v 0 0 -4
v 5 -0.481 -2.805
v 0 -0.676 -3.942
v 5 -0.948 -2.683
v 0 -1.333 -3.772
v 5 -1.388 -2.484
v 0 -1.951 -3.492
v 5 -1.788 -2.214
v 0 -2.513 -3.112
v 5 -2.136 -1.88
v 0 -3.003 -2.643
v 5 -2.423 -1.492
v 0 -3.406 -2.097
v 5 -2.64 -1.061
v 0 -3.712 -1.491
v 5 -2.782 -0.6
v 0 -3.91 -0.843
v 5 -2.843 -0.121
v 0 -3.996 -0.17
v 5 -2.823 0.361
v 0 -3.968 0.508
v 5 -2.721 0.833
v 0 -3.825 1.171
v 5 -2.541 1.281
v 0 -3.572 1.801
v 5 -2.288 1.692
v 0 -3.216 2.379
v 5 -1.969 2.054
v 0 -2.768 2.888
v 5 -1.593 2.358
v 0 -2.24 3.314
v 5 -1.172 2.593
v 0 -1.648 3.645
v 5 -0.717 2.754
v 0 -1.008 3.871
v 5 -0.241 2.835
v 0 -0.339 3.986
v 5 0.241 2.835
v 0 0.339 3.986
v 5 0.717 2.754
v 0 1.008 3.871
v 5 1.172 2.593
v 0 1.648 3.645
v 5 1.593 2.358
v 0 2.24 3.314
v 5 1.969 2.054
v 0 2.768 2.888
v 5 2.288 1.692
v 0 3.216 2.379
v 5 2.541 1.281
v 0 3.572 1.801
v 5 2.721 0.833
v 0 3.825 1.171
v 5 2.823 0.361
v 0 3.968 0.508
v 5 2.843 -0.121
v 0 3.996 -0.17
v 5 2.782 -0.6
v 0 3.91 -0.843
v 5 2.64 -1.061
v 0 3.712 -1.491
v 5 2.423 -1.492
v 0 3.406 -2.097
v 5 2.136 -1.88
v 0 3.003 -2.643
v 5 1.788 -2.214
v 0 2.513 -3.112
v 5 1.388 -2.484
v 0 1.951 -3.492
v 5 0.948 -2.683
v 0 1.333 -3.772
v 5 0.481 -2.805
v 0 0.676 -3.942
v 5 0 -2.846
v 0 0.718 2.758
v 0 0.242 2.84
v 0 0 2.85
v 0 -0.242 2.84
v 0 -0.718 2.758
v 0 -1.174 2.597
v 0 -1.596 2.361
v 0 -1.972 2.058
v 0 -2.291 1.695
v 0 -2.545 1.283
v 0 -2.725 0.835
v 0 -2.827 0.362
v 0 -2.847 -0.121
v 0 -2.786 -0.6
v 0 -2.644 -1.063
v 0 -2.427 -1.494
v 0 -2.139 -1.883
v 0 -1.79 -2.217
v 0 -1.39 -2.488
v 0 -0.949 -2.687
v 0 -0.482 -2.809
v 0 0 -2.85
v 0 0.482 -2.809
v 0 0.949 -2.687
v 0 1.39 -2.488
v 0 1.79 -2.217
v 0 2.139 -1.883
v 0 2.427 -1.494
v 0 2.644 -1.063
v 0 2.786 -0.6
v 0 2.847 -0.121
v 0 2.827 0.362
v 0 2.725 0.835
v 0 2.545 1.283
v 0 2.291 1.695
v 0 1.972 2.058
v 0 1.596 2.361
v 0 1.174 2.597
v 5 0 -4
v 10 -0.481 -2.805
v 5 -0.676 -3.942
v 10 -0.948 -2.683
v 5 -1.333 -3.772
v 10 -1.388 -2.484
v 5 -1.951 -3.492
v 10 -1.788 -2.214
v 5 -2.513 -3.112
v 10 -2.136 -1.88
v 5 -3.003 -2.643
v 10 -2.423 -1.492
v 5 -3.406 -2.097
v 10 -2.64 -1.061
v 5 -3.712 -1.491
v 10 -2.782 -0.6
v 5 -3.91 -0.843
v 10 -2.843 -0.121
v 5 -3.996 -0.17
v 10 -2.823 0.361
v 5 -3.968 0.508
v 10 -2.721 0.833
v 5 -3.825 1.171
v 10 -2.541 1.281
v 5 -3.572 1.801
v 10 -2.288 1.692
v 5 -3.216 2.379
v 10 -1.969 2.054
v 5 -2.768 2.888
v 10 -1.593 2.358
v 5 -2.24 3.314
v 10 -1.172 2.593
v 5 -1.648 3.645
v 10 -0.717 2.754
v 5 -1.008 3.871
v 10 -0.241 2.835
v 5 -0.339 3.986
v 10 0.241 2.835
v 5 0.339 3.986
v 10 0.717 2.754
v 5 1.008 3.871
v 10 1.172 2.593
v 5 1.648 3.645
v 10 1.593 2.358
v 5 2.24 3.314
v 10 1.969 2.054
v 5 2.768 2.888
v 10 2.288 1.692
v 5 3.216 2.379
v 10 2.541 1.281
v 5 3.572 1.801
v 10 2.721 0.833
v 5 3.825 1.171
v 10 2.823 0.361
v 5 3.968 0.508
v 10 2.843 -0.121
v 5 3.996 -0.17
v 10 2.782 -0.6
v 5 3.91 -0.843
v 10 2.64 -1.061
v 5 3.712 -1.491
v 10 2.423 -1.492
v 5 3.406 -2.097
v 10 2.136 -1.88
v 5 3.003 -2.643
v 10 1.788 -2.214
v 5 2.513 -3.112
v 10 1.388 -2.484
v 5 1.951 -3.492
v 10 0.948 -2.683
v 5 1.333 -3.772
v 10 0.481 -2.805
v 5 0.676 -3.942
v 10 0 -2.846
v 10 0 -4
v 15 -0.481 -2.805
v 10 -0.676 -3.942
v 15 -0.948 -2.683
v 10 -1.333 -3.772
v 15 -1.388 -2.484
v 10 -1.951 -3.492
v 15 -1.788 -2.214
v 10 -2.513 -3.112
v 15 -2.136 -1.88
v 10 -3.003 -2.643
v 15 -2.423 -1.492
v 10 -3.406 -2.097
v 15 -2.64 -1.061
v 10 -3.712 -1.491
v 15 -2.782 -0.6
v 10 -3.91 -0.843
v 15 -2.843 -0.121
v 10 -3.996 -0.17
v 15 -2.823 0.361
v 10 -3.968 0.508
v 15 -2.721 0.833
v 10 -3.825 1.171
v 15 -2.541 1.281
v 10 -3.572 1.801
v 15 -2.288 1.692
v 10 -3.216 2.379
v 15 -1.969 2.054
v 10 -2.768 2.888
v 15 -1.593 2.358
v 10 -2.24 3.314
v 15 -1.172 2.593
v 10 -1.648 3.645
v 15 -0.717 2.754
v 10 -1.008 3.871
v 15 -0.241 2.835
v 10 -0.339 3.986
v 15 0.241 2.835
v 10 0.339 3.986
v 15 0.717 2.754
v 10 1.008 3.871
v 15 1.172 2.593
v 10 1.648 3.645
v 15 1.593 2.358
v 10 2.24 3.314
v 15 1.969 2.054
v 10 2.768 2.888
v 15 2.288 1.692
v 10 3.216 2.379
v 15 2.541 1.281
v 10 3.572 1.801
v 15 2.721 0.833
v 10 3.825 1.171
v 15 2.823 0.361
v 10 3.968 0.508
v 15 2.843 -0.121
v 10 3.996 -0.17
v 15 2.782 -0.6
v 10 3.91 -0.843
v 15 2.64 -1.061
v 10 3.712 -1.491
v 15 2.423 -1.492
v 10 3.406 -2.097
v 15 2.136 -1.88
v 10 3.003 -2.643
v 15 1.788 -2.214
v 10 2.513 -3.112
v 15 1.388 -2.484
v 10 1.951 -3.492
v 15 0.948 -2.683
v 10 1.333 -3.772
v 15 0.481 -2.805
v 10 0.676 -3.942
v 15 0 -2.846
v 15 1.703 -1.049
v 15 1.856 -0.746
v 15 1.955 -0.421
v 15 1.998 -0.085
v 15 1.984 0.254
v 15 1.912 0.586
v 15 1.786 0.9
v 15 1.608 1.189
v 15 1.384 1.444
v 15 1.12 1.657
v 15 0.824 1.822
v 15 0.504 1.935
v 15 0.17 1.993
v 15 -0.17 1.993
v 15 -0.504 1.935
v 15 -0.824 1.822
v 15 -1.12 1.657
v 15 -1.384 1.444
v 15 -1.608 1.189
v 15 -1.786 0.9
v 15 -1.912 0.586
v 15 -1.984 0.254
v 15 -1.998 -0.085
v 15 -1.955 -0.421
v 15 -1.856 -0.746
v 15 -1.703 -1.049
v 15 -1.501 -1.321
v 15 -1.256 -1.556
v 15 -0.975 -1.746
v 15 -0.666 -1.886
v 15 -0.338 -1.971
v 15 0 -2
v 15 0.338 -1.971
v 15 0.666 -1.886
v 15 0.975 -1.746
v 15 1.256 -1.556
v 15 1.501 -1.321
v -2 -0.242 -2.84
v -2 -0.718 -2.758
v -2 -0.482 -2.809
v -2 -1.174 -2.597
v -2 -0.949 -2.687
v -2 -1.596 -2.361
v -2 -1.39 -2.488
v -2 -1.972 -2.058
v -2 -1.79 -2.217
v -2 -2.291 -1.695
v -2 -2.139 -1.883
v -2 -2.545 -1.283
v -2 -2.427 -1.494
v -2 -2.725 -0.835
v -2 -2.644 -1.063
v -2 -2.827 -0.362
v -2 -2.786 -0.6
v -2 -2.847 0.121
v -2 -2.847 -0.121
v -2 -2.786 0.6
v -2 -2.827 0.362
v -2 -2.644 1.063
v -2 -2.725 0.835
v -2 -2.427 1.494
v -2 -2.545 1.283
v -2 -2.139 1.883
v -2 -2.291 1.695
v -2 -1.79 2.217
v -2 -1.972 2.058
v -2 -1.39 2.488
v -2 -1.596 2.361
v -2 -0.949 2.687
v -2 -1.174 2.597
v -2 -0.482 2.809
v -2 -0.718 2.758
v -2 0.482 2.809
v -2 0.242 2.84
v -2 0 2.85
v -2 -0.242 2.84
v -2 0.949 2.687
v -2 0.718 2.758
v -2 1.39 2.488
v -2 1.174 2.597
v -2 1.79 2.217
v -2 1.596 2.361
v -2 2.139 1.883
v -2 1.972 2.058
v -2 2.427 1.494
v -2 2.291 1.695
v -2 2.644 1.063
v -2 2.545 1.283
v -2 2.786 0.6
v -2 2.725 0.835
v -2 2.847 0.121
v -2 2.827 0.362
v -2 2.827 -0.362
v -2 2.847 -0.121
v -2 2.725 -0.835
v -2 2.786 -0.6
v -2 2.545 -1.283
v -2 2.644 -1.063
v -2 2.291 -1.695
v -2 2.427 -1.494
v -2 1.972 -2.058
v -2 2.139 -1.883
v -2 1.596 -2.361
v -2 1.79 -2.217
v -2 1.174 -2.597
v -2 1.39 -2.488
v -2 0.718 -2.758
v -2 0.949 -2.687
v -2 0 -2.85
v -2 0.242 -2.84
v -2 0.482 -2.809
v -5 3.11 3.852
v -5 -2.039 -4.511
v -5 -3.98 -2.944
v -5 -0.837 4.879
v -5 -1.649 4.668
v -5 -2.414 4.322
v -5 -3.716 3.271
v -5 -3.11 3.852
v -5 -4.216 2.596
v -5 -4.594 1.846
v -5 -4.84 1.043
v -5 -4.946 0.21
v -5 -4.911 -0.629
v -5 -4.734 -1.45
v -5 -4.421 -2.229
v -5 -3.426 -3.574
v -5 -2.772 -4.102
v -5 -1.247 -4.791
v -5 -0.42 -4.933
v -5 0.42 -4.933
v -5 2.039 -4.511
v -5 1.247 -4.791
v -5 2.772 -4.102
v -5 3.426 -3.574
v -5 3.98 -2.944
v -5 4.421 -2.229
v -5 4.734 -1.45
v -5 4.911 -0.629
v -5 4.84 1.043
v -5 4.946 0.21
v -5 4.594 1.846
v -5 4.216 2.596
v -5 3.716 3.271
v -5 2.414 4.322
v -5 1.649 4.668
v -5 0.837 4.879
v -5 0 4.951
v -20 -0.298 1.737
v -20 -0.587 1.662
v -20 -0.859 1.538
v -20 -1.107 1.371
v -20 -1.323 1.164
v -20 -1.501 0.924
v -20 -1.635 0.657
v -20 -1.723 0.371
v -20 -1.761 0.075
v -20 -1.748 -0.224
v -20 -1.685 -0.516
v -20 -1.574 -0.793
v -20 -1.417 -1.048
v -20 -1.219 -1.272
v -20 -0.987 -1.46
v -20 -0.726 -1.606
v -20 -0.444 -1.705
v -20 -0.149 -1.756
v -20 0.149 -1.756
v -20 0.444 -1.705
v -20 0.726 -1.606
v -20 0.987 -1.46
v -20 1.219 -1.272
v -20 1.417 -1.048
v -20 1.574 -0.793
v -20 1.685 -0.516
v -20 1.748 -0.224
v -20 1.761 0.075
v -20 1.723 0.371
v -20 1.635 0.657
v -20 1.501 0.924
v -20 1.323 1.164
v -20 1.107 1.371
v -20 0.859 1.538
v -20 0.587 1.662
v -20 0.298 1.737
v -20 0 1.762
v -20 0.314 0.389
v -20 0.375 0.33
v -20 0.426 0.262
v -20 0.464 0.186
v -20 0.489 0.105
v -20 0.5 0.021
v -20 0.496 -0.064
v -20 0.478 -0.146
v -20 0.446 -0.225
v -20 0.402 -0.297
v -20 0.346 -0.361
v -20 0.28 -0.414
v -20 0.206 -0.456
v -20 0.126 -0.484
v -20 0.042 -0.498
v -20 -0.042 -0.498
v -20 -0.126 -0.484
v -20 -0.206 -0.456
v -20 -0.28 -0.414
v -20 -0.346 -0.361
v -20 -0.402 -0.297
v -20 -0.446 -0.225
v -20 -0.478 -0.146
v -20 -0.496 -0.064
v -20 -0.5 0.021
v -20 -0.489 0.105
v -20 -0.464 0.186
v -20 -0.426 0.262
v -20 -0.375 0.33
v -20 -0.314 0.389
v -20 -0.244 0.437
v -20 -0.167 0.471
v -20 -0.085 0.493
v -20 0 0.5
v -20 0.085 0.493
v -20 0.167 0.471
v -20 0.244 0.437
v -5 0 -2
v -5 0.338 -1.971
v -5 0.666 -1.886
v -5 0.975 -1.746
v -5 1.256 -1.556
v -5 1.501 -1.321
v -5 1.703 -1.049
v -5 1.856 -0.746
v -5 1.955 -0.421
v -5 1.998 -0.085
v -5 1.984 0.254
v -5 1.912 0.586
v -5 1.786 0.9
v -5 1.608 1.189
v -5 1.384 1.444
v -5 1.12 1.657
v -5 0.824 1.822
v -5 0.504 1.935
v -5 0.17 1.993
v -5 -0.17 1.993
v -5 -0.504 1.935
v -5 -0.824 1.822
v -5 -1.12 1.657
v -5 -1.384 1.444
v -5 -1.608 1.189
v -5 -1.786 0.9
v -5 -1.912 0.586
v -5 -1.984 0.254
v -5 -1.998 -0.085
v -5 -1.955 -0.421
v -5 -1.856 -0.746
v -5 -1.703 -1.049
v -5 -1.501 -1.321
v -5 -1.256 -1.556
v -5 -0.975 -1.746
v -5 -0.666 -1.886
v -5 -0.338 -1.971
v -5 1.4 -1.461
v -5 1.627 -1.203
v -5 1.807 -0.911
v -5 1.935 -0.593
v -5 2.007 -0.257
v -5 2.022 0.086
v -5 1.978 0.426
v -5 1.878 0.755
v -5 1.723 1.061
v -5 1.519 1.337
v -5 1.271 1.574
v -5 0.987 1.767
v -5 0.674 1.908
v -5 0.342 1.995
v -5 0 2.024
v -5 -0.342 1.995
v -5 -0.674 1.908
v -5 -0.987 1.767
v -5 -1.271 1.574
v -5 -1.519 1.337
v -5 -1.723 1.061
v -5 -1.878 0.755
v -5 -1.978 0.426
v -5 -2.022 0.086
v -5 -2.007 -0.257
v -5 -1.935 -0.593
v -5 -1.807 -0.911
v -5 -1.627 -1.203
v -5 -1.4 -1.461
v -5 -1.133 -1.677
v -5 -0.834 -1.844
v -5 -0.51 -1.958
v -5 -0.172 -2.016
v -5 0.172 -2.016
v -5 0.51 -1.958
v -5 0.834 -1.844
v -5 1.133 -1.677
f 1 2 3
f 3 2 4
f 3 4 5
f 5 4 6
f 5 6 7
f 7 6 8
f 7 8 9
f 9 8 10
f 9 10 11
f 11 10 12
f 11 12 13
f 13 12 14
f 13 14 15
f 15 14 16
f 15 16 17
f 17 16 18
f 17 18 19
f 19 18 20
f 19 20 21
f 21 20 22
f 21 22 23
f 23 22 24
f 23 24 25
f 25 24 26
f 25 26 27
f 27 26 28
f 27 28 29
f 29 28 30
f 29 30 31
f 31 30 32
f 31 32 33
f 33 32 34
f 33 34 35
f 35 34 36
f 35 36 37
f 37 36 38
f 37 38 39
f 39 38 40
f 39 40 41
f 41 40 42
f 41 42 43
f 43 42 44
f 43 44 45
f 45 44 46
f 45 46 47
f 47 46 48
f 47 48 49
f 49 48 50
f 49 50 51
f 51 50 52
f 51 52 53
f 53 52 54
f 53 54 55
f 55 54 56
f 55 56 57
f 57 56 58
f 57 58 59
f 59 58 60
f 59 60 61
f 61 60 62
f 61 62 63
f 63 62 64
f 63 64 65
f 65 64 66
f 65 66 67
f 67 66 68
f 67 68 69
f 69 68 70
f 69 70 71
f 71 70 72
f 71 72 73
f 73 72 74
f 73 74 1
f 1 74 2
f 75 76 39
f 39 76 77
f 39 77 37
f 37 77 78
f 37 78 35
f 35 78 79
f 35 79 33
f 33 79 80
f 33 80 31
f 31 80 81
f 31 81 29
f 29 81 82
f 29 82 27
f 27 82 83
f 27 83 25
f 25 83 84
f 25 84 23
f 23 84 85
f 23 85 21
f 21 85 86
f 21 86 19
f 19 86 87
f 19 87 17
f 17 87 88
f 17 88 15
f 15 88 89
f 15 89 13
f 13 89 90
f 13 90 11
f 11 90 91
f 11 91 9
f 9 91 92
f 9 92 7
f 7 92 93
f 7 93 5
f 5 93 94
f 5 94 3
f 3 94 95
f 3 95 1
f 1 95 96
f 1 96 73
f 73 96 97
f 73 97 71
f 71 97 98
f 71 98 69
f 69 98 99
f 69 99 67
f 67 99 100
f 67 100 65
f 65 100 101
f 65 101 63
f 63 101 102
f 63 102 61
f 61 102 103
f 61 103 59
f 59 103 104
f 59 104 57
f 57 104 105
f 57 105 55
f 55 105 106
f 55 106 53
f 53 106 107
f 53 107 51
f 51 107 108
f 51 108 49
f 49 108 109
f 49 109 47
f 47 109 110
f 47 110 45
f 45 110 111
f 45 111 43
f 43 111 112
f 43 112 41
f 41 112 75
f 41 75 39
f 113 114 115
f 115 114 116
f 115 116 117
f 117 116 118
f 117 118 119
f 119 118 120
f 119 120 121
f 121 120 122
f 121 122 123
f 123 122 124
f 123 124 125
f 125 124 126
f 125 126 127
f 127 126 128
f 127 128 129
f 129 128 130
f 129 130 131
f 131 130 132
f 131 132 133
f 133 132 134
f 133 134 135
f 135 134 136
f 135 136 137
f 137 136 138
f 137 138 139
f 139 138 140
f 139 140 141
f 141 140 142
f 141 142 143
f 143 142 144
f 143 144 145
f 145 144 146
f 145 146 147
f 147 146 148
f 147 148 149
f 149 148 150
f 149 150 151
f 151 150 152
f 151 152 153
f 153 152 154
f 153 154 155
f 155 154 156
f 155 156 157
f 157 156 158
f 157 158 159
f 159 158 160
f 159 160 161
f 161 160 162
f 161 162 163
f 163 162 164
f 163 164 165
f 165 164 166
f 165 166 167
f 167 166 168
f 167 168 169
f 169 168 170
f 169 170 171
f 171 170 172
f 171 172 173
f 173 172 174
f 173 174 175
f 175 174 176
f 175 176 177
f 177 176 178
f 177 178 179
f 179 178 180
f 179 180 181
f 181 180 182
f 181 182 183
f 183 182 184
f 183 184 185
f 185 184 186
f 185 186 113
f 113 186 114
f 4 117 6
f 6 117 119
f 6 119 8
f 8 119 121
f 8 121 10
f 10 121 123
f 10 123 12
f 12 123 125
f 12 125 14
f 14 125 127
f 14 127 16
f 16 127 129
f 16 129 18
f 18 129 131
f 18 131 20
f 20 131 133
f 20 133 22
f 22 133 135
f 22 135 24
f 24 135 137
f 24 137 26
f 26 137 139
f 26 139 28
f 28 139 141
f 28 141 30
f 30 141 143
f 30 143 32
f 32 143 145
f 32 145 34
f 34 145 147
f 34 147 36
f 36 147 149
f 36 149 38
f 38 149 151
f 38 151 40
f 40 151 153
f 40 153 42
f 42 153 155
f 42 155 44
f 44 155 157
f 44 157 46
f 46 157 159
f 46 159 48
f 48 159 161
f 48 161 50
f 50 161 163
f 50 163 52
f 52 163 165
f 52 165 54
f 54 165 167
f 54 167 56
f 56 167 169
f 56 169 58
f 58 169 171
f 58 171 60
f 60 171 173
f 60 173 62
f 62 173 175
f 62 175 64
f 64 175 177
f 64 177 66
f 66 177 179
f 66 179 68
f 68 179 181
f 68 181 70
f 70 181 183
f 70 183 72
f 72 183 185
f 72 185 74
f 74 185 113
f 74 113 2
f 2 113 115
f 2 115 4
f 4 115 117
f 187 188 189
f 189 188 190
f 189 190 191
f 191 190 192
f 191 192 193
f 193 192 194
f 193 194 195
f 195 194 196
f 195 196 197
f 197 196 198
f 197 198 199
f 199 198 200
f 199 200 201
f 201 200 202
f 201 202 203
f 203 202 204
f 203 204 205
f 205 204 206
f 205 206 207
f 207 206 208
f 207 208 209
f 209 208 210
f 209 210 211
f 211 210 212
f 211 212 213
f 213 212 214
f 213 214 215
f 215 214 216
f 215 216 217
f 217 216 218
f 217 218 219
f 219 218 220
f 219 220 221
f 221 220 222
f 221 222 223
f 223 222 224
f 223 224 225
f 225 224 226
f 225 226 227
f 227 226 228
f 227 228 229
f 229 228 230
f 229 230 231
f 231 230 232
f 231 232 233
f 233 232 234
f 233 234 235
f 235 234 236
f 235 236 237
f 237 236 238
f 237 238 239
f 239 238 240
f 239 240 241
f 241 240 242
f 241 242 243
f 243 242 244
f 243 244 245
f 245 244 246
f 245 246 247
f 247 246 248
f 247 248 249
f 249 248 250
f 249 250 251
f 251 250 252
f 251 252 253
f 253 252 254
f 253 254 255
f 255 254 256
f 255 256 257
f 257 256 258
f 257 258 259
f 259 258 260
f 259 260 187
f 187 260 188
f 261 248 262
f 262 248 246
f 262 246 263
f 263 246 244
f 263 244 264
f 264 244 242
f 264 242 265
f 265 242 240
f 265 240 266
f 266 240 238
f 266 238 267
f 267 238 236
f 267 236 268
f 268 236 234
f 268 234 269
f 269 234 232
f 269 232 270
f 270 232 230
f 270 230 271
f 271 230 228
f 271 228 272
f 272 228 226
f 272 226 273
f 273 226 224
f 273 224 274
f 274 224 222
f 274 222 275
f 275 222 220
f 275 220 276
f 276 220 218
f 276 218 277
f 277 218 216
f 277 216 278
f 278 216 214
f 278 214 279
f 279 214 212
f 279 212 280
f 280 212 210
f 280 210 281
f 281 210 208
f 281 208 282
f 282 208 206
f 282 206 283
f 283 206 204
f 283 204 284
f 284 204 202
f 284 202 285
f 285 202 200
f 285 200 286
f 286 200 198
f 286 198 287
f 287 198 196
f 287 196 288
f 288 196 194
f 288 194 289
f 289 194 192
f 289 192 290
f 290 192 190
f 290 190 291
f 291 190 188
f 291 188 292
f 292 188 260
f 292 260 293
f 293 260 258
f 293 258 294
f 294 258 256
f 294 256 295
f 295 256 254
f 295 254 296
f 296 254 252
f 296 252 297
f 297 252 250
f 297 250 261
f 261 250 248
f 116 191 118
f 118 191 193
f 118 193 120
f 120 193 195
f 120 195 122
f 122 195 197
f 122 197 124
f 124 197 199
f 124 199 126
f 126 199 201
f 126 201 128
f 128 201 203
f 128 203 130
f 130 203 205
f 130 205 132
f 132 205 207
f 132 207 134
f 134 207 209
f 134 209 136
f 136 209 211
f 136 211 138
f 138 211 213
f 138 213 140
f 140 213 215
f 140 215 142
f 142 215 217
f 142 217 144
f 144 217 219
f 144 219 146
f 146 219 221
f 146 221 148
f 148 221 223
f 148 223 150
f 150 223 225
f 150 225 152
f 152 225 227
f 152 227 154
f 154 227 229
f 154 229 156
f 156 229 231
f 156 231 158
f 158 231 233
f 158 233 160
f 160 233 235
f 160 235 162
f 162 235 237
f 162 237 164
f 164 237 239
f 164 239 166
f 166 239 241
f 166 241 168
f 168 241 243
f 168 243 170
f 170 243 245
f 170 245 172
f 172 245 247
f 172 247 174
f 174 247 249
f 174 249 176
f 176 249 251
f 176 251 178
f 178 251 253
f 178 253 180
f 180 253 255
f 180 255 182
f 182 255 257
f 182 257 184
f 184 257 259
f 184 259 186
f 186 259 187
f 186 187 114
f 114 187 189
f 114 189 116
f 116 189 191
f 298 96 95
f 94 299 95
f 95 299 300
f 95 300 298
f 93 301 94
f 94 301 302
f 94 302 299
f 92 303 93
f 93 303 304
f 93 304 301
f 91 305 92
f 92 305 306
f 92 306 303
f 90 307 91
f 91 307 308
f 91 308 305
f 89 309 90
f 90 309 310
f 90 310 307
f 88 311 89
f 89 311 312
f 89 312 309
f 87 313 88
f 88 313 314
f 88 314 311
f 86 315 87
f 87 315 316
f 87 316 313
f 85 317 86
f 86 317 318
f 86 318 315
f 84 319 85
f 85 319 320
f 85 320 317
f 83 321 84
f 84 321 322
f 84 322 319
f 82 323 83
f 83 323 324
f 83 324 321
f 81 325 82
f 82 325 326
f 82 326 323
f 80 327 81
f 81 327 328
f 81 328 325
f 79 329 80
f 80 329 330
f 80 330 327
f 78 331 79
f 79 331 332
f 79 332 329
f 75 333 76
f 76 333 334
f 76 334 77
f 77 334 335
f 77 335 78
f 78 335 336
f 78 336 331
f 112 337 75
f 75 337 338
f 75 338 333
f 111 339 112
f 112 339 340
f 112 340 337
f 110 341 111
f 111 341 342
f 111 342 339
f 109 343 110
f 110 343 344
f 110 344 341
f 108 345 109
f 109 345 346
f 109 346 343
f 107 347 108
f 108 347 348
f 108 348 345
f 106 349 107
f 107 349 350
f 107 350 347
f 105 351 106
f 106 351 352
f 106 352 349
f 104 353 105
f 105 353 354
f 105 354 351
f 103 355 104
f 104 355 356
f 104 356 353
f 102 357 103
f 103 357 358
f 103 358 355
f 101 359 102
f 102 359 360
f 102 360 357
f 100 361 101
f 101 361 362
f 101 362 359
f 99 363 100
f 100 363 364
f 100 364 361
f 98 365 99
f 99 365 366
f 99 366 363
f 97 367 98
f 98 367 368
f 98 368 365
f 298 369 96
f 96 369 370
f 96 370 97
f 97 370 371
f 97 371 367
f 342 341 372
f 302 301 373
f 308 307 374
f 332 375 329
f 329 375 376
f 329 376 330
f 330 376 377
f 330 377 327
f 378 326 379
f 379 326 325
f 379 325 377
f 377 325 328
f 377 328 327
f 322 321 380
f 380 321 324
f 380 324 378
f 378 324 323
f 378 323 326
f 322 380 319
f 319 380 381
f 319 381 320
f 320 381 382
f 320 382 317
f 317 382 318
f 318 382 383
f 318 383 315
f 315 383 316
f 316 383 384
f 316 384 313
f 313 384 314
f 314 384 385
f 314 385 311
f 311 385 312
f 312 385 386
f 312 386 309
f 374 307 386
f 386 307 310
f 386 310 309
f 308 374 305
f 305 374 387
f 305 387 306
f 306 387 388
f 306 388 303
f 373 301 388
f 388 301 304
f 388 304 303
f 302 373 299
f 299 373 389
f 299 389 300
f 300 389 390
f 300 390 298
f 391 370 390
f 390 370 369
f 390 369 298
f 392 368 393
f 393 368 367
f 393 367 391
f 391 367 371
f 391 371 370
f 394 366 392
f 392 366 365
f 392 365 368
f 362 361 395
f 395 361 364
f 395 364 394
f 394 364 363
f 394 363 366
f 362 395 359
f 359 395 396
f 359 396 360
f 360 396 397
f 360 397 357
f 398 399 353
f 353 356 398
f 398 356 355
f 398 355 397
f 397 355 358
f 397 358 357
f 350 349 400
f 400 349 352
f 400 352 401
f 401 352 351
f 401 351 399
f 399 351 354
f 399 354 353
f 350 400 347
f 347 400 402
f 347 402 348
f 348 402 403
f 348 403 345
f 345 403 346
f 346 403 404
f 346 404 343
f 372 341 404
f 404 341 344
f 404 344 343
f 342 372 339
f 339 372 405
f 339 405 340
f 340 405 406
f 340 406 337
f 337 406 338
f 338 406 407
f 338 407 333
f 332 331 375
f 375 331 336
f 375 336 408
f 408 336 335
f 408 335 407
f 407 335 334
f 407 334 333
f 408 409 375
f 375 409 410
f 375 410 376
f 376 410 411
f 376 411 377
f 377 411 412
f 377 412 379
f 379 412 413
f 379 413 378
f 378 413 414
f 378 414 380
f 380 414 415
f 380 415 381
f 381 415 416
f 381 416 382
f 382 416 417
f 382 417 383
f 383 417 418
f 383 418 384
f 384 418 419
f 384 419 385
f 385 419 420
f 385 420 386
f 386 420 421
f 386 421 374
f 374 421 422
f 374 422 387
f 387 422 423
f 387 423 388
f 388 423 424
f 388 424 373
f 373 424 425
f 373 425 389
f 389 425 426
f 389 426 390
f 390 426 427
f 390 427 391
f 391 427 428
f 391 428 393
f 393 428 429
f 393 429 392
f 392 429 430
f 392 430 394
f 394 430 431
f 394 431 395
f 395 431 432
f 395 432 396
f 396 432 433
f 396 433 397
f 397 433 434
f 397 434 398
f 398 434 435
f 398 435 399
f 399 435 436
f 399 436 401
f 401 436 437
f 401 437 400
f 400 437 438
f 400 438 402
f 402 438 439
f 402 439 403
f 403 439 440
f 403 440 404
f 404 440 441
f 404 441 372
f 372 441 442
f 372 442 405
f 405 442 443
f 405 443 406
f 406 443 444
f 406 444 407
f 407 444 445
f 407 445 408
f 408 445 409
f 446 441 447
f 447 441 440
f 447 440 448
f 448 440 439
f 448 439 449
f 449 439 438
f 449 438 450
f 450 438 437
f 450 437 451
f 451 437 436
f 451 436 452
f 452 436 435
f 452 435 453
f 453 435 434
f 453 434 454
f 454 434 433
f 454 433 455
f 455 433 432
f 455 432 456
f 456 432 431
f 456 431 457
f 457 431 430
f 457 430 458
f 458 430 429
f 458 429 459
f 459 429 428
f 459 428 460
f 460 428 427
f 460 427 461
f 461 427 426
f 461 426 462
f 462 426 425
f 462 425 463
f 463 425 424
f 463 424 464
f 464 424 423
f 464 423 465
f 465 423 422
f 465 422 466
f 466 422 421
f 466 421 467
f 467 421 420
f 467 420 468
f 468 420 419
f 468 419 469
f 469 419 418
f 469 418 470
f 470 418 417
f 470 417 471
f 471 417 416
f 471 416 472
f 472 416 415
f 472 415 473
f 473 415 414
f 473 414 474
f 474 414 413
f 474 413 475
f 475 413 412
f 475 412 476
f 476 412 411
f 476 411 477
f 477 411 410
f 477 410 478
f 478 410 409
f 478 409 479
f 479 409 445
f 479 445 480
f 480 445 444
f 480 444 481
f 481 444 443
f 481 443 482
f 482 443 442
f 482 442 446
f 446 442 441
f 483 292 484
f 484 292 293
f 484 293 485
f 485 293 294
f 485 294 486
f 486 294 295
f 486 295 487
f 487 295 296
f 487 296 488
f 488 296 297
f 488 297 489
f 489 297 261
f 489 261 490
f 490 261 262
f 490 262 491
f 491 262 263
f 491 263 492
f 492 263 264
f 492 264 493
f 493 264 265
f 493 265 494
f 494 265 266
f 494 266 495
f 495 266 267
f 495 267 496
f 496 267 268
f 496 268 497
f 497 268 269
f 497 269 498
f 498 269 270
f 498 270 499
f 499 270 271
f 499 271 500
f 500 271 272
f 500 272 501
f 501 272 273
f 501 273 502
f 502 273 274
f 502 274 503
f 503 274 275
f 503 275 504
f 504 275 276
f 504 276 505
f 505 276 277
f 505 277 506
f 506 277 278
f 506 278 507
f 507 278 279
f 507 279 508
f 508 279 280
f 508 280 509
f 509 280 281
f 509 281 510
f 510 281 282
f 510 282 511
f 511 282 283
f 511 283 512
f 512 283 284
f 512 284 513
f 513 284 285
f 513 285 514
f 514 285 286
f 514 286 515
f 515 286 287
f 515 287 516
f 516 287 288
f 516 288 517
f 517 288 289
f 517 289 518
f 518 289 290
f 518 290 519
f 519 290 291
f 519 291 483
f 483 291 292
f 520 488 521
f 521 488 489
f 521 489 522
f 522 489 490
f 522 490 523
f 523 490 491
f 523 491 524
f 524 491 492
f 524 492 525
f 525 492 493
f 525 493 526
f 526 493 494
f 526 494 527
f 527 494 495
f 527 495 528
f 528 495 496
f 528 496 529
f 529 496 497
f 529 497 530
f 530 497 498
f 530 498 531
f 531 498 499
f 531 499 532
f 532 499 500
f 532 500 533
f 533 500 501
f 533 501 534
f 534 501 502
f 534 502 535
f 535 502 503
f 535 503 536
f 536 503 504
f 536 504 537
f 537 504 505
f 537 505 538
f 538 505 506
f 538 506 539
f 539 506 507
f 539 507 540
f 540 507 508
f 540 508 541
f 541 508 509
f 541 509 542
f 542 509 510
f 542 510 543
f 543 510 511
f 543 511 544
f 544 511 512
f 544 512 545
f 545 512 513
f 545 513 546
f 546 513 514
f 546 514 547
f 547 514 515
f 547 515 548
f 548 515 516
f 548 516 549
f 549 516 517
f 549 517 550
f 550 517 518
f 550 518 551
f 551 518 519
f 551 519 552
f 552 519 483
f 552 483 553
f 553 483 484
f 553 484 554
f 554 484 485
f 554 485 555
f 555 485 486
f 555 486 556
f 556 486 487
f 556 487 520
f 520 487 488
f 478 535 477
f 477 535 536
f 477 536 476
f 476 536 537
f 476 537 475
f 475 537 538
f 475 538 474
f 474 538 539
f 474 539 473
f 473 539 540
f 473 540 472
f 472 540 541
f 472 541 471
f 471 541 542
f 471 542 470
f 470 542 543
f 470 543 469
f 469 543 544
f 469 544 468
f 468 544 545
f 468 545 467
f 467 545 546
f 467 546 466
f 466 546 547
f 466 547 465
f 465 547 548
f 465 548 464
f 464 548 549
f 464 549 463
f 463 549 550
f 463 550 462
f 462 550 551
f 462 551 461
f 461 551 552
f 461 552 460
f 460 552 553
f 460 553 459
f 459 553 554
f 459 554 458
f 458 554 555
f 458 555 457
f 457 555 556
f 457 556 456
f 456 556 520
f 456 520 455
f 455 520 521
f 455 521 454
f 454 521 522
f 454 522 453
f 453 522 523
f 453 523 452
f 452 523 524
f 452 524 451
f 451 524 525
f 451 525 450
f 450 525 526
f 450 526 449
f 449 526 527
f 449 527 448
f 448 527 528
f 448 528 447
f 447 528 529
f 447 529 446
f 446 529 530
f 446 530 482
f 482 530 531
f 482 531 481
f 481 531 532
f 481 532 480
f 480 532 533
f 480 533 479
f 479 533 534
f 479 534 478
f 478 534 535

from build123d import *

# Parameters (mm, degrees)
SKETCH1_R           = 4
BOSS_EXTRUDE1_DEPTH = 5
BOSS_EXTRUDE1_TAPER = 13
SKETCH2_R           = 4
BOSS_EXTRUDE2_DEPTH = 5
BOSS_EXTRUDE2_TAPER = 13
SKETCH3_R           = 4
BOSS_EXTRUDE3_DEPTH = 5
BOSS_EXTRUDE3_TAPER = 13
SKETCH4_R           = 2.85
BOSS_EXTRUDE4_DEPTH = 2
SKETCH5_R           = 2.85
BOSS_EXTRUDE5_DEPTH = 3
BOSS_EXTRUDE5_DRAFT = -35
SKETCH6_R           = 4.950622615
BOSS_EXTRUDE6_DEPTH = 15
BOSS_EXTRUDE6_TAPER = 12
SKETCH9_R           = 2
CUT_EXTRUDE1_DEPTH  = 20
SKETCH11_R          = 0.5
CUT_EXTRUDE2_DEPTH  = 15
CUT_EXTRUDE2_DRAFT  = 5.8


with BuildPart() as part:
    # Sketch1 → Boss-Extrude1 (new body)
    with BuildSketch(Plane(origin=(0, 0, 0), x_dir=(0, 0, -1), z_dir=(1, 0, 0))):
        Circle(SKETCH1_R)
    extrude(amount=BOSS_EXTRUDE1_DEPTH, taper=BOSS_EXTRUDE1_TAPER)

    # Sketch2 → Boss-Extrude2 (add)
    with BuildSketch(Plane(origin=(5, 0, 0), x_dir=(0, 0, -1), z_dir=(1, 0, 0))):
        Circle(SKETCH2_R)
    extrude(amount=BOSS_EXTRUDE2_DEPTH, taper=BOSS_EXTRUDE2_TAPER)

    # Sketch3 → Boss-Extrude3 (add)
    with BuildSketch(Plane(origin=(10, 0, 0), x_dir=(0, 0, -1), z_dir=(1, 0, 0))):
        Circle(SKETCH3_R)
    extrude(amount=BOSS_EXTRUDE3_DEPTH, taper=BOSS_EXTRUDE3_TAPER)

    # Sketch4 → Boss-Extrude4 (add)
    with BuildSketch(Plane.ZY):
        Circle(SKETCH4_R)
    extrude(amount=BOSS_EXTRUDE4_DEPTH)


with BuildPart() as boss_extrude5_tool:
    # Sketch5 → Boss-Extrude5 (with draft: the straight prism first)
    with BuildSketch(Plane.ZY.offset(2)):
        Circle(SKETCH5_R)
    extrude(amount=BOSS_EXTRUDE5_DEPTH)
    # Boss-Extrude5: the draft: its side faces are tilted about the plane it starts from
    boss_extrude5_sides = [boss_extrude5_tool.faces().sort_by_distance(p)[0] for p in [
        (-3.5, 0, -2.85),
    ]]
    draft(boss_extrude5_sides, Plane.ZY.offset(2), BOSS_EXTRUDE5_DRAFT)


with BuildPart() as part_1:
    add(part.part)

    # Boss-Extrude5: add boss_extrude5_tool
    add(boss_extrude5_tool.part)

    # Sketch6 → Boss-Extrude6 (add)
    with BuildSketch(Plane.ZY.offset(5)):
        Circle(SKETCH6_R)
    extrude(amount=BOSS_EXTRUDE6_DEPTH, taper=BOSS_EXTRUDE6_TAPER)

    # Sketch9 → Cut-Extrude1 (cut)
    with BuildSketch(Plane(origin=(15, 0, 0), x_dir=(0, 0, -1), z_dir=(1, 0, 0))):
        Circle(SKETCH9_R)
    extrude(amount=-CUT_EXTRUDE1_DEPTH, mode=Mode.SUBTRACT)


with BuildPart() as cut_extrude2_tool:
    # Sketch11 → Cut-Extrude2 (with draft: the straight prism first)
    with BuildSketch(Plane.ZY.offset(20)):
        Circle(SKETCH11_R)
    extrude(amount=-CUT_EXTRUDE2_DEPTH)
    # Cut-Extrude2: the draft: its side faces are tilted about the plane it starts from
    cut_extrude2_sides = [cut_extrude2_tool.faces().sort_by_distance(p)[0] for p in [
        (-12.5, 0, -0.5),
    ]]
    draft(cut_extrude2_sides, Plane.ZY.offset(20), CUT_EXTRUDE2_DRAFT)


with BuildPart() as part_2:
    add(part_1.part)

    # Cut-Extrude2: cut by cut_extrude2_tool
    add(cut_extrude2_tool.part, mode=Mode.SUBTRACT)


solid = part_2.part
